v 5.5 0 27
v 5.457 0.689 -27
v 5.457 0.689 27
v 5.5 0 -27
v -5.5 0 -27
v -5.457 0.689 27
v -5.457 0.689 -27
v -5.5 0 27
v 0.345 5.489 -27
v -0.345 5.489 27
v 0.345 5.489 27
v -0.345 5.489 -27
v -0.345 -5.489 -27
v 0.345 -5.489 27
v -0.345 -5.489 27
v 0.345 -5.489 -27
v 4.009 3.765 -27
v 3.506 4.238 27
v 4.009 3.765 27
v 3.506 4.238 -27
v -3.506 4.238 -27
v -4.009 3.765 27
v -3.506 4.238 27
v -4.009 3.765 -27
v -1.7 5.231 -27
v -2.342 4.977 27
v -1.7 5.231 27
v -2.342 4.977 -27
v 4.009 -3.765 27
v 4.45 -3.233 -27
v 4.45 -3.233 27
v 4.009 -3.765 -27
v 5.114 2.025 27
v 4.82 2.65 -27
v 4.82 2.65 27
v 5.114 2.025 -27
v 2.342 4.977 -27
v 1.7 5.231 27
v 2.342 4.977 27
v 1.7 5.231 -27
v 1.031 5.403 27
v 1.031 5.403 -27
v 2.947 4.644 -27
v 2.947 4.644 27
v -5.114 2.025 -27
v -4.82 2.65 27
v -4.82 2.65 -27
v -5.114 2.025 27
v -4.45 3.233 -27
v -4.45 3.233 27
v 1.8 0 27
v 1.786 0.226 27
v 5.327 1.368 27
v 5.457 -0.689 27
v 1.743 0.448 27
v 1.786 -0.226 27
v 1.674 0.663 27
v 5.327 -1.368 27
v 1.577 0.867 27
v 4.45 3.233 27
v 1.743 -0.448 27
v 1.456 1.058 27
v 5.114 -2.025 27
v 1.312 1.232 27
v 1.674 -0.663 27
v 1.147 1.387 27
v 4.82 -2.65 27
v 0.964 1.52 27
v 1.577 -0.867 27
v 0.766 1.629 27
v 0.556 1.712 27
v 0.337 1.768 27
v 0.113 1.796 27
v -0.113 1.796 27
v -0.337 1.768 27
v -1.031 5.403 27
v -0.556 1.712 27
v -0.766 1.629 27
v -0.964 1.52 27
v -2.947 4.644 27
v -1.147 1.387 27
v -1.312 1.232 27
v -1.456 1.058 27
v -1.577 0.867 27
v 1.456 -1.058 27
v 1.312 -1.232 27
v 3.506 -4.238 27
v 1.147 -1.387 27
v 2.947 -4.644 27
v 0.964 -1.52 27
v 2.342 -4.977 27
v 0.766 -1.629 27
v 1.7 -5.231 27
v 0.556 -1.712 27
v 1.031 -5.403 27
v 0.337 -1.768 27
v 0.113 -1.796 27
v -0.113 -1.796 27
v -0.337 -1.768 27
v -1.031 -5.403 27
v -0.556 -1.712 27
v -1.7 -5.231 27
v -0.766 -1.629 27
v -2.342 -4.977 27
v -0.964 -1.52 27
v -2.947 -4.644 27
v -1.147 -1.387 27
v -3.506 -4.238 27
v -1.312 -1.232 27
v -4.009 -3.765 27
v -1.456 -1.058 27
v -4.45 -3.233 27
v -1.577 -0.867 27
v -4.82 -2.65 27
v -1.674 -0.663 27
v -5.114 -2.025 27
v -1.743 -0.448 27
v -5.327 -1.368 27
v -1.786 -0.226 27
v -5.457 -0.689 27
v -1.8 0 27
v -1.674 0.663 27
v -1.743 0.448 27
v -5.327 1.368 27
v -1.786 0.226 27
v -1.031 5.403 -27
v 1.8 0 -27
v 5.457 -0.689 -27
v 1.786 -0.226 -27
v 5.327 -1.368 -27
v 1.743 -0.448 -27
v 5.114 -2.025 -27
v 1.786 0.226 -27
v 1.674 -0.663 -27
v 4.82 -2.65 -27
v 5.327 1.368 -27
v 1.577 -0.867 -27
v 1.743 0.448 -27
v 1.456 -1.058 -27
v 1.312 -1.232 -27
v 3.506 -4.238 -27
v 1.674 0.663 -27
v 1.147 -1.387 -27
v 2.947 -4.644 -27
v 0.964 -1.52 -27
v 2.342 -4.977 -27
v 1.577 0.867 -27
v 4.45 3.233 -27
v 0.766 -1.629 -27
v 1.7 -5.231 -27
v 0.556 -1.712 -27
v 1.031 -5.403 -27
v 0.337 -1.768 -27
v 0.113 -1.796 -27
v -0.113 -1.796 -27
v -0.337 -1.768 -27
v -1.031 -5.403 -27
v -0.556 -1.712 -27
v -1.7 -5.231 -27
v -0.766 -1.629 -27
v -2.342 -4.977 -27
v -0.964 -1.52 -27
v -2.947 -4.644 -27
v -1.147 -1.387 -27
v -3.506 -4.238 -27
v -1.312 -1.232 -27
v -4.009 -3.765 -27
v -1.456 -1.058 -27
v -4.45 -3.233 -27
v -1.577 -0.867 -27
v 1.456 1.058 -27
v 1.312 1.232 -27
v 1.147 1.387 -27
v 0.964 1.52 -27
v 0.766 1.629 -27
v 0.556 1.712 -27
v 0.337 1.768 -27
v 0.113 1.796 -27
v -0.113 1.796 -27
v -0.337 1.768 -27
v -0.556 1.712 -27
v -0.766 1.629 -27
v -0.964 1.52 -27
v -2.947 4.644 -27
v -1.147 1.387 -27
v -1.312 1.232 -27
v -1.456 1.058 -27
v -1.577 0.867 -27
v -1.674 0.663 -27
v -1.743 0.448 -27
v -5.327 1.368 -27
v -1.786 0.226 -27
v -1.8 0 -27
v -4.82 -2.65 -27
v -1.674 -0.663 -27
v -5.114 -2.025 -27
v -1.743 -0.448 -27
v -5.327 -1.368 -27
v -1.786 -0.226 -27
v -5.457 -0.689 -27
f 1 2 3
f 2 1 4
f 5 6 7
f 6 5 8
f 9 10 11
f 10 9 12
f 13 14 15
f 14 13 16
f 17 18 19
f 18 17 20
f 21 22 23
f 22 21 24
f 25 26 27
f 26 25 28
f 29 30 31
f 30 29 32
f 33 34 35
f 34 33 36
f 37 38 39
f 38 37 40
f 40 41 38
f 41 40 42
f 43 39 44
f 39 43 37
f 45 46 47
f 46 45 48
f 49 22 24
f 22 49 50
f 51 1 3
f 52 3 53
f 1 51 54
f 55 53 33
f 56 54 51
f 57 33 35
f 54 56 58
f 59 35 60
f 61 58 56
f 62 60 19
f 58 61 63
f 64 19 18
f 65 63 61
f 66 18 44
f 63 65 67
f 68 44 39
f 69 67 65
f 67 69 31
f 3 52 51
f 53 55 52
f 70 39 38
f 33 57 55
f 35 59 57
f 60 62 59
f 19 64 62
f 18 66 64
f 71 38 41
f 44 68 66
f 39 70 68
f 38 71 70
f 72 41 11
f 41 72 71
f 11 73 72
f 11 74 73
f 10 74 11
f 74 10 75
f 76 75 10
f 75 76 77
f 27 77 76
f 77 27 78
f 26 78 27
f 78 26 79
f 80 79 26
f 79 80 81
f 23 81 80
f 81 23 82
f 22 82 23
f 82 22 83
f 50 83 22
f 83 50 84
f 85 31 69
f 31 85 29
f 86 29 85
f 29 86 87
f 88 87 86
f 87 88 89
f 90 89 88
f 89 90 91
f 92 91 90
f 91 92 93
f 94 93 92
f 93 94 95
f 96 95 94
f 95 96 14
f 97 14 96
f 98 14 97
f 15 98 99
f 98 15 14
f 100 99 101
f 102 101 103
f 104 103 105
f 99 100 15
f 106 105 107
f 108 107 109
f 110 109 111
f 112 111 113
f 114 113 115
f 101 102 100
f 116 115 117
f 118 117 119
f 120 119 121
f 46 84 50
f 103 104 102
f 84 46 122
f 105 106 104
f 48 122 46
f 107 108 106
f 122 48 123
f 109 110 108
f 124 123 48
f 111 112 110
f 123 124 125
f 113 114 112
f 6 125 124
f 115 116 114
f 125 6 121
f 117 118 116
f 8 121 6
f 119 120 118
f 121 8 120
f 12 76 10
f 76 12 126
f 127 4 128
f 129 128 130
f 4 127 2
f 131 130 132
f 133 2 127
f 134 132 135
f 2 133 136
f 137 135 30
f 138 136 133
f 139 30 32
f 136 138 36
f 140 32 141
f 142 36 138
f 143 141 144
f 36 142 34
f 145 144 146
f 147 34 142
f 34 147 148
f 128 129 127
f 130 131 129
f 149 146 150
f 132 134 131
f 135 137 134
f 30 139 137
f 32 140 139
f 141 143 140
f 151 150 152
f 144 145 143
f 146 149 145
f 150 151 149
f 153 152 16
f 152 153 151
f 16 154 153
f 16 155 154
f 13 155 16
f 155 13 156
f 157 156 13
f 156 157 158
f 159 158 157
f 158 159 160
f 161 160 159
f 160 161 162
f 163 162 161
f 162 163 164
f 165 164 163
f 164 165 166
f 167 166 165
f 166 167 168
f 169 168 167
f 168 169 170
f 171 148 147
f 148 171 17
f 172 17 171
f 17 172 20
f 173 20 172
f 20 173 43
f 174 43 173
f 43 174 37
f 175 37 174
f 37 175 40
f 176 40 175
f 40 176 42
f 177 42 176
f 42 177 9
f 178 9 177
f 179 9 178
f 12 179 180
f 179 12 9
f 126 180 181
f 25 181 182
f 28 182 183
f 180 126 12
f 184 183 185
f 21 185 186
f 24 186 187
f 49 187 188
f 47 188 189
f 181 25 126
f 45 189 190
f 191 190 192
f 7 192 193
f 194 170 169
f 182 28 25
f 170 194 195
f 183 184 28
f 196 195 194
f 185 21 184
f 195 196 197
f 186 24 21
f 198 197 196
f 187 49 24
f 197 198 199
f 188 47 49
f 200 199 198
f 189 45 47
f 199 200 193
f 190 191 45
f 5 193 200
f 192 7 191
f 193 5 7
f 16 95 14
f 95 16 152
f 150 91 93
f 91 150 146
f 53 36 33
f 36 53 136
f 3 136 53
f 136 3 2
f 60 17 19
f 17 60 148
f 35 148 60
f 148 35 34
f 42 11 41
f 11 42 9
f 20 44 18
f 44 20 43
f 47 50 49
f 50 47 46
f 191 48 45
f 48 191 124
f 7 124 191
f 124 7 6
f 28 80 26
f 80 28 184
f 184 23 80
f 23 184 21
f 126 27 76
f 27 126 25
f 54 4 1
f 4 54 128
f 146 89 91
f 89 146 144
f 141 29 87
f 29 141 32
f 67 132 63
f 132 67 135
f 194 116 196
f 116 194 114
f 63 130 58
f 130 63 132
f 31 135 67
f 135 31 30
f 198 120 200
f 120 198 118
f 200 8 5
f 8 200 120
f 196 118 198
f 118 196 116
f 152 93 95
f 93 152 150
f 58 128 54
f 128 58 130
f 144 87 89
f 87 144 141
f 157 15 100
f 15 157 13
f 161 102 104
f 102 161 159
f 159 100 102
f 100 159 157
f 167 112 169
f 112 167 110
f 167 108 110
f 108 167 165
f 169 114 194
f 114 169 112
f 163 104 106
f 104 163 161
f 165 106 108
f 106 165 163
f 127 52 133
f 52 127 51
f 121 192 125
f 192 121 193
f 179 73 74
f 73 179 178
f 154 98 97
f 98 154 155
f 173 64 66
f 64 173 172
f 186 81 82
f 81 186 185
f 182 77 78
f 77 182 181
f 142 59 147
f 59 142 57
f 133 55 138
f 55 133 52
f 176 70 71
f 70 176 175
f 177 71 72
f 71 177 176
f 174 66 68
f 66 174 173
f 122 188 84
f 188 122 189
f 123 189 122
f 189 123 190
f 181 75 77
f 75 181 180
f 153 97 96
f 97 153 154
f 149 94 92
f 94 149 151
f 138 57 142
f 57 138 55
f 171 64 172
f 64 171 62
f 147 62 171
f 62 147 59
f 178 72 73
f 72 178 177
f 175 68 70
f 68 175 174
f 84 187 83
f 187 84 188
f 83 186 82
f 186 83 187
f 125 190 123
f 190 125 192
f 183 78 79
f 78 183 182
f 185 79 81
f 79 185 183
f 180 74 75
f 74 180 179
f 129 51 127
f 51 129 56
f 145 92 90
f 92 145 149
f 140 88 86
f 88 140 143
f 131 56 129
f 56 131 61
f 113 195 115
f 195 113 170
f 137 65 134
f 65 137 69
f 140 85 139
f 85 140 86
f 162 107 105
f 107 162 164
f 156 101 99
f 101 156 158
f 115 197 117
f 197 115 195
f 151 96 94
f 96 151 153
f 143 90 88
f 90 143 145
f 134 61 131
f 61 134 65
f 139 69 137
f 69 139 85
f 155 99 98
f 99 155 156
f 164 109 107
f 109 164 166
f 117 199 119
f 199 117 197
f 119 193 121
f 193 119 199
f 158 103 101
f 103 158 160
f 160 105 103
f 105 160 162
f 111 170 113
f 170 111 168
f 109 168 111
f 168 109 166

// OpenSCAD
$fn = 50;


difference() {
	union() {
		translate(v = [0, 0, -27.0000000000]) {
			cylinder(h = 54, r = 5.5000000000);
		}
	}
	union() {
		#translate(v = [0, 0, -100.0000000000]) {
			cylinder(h = 200, r = 1.8000000000);
		}
	}
}
